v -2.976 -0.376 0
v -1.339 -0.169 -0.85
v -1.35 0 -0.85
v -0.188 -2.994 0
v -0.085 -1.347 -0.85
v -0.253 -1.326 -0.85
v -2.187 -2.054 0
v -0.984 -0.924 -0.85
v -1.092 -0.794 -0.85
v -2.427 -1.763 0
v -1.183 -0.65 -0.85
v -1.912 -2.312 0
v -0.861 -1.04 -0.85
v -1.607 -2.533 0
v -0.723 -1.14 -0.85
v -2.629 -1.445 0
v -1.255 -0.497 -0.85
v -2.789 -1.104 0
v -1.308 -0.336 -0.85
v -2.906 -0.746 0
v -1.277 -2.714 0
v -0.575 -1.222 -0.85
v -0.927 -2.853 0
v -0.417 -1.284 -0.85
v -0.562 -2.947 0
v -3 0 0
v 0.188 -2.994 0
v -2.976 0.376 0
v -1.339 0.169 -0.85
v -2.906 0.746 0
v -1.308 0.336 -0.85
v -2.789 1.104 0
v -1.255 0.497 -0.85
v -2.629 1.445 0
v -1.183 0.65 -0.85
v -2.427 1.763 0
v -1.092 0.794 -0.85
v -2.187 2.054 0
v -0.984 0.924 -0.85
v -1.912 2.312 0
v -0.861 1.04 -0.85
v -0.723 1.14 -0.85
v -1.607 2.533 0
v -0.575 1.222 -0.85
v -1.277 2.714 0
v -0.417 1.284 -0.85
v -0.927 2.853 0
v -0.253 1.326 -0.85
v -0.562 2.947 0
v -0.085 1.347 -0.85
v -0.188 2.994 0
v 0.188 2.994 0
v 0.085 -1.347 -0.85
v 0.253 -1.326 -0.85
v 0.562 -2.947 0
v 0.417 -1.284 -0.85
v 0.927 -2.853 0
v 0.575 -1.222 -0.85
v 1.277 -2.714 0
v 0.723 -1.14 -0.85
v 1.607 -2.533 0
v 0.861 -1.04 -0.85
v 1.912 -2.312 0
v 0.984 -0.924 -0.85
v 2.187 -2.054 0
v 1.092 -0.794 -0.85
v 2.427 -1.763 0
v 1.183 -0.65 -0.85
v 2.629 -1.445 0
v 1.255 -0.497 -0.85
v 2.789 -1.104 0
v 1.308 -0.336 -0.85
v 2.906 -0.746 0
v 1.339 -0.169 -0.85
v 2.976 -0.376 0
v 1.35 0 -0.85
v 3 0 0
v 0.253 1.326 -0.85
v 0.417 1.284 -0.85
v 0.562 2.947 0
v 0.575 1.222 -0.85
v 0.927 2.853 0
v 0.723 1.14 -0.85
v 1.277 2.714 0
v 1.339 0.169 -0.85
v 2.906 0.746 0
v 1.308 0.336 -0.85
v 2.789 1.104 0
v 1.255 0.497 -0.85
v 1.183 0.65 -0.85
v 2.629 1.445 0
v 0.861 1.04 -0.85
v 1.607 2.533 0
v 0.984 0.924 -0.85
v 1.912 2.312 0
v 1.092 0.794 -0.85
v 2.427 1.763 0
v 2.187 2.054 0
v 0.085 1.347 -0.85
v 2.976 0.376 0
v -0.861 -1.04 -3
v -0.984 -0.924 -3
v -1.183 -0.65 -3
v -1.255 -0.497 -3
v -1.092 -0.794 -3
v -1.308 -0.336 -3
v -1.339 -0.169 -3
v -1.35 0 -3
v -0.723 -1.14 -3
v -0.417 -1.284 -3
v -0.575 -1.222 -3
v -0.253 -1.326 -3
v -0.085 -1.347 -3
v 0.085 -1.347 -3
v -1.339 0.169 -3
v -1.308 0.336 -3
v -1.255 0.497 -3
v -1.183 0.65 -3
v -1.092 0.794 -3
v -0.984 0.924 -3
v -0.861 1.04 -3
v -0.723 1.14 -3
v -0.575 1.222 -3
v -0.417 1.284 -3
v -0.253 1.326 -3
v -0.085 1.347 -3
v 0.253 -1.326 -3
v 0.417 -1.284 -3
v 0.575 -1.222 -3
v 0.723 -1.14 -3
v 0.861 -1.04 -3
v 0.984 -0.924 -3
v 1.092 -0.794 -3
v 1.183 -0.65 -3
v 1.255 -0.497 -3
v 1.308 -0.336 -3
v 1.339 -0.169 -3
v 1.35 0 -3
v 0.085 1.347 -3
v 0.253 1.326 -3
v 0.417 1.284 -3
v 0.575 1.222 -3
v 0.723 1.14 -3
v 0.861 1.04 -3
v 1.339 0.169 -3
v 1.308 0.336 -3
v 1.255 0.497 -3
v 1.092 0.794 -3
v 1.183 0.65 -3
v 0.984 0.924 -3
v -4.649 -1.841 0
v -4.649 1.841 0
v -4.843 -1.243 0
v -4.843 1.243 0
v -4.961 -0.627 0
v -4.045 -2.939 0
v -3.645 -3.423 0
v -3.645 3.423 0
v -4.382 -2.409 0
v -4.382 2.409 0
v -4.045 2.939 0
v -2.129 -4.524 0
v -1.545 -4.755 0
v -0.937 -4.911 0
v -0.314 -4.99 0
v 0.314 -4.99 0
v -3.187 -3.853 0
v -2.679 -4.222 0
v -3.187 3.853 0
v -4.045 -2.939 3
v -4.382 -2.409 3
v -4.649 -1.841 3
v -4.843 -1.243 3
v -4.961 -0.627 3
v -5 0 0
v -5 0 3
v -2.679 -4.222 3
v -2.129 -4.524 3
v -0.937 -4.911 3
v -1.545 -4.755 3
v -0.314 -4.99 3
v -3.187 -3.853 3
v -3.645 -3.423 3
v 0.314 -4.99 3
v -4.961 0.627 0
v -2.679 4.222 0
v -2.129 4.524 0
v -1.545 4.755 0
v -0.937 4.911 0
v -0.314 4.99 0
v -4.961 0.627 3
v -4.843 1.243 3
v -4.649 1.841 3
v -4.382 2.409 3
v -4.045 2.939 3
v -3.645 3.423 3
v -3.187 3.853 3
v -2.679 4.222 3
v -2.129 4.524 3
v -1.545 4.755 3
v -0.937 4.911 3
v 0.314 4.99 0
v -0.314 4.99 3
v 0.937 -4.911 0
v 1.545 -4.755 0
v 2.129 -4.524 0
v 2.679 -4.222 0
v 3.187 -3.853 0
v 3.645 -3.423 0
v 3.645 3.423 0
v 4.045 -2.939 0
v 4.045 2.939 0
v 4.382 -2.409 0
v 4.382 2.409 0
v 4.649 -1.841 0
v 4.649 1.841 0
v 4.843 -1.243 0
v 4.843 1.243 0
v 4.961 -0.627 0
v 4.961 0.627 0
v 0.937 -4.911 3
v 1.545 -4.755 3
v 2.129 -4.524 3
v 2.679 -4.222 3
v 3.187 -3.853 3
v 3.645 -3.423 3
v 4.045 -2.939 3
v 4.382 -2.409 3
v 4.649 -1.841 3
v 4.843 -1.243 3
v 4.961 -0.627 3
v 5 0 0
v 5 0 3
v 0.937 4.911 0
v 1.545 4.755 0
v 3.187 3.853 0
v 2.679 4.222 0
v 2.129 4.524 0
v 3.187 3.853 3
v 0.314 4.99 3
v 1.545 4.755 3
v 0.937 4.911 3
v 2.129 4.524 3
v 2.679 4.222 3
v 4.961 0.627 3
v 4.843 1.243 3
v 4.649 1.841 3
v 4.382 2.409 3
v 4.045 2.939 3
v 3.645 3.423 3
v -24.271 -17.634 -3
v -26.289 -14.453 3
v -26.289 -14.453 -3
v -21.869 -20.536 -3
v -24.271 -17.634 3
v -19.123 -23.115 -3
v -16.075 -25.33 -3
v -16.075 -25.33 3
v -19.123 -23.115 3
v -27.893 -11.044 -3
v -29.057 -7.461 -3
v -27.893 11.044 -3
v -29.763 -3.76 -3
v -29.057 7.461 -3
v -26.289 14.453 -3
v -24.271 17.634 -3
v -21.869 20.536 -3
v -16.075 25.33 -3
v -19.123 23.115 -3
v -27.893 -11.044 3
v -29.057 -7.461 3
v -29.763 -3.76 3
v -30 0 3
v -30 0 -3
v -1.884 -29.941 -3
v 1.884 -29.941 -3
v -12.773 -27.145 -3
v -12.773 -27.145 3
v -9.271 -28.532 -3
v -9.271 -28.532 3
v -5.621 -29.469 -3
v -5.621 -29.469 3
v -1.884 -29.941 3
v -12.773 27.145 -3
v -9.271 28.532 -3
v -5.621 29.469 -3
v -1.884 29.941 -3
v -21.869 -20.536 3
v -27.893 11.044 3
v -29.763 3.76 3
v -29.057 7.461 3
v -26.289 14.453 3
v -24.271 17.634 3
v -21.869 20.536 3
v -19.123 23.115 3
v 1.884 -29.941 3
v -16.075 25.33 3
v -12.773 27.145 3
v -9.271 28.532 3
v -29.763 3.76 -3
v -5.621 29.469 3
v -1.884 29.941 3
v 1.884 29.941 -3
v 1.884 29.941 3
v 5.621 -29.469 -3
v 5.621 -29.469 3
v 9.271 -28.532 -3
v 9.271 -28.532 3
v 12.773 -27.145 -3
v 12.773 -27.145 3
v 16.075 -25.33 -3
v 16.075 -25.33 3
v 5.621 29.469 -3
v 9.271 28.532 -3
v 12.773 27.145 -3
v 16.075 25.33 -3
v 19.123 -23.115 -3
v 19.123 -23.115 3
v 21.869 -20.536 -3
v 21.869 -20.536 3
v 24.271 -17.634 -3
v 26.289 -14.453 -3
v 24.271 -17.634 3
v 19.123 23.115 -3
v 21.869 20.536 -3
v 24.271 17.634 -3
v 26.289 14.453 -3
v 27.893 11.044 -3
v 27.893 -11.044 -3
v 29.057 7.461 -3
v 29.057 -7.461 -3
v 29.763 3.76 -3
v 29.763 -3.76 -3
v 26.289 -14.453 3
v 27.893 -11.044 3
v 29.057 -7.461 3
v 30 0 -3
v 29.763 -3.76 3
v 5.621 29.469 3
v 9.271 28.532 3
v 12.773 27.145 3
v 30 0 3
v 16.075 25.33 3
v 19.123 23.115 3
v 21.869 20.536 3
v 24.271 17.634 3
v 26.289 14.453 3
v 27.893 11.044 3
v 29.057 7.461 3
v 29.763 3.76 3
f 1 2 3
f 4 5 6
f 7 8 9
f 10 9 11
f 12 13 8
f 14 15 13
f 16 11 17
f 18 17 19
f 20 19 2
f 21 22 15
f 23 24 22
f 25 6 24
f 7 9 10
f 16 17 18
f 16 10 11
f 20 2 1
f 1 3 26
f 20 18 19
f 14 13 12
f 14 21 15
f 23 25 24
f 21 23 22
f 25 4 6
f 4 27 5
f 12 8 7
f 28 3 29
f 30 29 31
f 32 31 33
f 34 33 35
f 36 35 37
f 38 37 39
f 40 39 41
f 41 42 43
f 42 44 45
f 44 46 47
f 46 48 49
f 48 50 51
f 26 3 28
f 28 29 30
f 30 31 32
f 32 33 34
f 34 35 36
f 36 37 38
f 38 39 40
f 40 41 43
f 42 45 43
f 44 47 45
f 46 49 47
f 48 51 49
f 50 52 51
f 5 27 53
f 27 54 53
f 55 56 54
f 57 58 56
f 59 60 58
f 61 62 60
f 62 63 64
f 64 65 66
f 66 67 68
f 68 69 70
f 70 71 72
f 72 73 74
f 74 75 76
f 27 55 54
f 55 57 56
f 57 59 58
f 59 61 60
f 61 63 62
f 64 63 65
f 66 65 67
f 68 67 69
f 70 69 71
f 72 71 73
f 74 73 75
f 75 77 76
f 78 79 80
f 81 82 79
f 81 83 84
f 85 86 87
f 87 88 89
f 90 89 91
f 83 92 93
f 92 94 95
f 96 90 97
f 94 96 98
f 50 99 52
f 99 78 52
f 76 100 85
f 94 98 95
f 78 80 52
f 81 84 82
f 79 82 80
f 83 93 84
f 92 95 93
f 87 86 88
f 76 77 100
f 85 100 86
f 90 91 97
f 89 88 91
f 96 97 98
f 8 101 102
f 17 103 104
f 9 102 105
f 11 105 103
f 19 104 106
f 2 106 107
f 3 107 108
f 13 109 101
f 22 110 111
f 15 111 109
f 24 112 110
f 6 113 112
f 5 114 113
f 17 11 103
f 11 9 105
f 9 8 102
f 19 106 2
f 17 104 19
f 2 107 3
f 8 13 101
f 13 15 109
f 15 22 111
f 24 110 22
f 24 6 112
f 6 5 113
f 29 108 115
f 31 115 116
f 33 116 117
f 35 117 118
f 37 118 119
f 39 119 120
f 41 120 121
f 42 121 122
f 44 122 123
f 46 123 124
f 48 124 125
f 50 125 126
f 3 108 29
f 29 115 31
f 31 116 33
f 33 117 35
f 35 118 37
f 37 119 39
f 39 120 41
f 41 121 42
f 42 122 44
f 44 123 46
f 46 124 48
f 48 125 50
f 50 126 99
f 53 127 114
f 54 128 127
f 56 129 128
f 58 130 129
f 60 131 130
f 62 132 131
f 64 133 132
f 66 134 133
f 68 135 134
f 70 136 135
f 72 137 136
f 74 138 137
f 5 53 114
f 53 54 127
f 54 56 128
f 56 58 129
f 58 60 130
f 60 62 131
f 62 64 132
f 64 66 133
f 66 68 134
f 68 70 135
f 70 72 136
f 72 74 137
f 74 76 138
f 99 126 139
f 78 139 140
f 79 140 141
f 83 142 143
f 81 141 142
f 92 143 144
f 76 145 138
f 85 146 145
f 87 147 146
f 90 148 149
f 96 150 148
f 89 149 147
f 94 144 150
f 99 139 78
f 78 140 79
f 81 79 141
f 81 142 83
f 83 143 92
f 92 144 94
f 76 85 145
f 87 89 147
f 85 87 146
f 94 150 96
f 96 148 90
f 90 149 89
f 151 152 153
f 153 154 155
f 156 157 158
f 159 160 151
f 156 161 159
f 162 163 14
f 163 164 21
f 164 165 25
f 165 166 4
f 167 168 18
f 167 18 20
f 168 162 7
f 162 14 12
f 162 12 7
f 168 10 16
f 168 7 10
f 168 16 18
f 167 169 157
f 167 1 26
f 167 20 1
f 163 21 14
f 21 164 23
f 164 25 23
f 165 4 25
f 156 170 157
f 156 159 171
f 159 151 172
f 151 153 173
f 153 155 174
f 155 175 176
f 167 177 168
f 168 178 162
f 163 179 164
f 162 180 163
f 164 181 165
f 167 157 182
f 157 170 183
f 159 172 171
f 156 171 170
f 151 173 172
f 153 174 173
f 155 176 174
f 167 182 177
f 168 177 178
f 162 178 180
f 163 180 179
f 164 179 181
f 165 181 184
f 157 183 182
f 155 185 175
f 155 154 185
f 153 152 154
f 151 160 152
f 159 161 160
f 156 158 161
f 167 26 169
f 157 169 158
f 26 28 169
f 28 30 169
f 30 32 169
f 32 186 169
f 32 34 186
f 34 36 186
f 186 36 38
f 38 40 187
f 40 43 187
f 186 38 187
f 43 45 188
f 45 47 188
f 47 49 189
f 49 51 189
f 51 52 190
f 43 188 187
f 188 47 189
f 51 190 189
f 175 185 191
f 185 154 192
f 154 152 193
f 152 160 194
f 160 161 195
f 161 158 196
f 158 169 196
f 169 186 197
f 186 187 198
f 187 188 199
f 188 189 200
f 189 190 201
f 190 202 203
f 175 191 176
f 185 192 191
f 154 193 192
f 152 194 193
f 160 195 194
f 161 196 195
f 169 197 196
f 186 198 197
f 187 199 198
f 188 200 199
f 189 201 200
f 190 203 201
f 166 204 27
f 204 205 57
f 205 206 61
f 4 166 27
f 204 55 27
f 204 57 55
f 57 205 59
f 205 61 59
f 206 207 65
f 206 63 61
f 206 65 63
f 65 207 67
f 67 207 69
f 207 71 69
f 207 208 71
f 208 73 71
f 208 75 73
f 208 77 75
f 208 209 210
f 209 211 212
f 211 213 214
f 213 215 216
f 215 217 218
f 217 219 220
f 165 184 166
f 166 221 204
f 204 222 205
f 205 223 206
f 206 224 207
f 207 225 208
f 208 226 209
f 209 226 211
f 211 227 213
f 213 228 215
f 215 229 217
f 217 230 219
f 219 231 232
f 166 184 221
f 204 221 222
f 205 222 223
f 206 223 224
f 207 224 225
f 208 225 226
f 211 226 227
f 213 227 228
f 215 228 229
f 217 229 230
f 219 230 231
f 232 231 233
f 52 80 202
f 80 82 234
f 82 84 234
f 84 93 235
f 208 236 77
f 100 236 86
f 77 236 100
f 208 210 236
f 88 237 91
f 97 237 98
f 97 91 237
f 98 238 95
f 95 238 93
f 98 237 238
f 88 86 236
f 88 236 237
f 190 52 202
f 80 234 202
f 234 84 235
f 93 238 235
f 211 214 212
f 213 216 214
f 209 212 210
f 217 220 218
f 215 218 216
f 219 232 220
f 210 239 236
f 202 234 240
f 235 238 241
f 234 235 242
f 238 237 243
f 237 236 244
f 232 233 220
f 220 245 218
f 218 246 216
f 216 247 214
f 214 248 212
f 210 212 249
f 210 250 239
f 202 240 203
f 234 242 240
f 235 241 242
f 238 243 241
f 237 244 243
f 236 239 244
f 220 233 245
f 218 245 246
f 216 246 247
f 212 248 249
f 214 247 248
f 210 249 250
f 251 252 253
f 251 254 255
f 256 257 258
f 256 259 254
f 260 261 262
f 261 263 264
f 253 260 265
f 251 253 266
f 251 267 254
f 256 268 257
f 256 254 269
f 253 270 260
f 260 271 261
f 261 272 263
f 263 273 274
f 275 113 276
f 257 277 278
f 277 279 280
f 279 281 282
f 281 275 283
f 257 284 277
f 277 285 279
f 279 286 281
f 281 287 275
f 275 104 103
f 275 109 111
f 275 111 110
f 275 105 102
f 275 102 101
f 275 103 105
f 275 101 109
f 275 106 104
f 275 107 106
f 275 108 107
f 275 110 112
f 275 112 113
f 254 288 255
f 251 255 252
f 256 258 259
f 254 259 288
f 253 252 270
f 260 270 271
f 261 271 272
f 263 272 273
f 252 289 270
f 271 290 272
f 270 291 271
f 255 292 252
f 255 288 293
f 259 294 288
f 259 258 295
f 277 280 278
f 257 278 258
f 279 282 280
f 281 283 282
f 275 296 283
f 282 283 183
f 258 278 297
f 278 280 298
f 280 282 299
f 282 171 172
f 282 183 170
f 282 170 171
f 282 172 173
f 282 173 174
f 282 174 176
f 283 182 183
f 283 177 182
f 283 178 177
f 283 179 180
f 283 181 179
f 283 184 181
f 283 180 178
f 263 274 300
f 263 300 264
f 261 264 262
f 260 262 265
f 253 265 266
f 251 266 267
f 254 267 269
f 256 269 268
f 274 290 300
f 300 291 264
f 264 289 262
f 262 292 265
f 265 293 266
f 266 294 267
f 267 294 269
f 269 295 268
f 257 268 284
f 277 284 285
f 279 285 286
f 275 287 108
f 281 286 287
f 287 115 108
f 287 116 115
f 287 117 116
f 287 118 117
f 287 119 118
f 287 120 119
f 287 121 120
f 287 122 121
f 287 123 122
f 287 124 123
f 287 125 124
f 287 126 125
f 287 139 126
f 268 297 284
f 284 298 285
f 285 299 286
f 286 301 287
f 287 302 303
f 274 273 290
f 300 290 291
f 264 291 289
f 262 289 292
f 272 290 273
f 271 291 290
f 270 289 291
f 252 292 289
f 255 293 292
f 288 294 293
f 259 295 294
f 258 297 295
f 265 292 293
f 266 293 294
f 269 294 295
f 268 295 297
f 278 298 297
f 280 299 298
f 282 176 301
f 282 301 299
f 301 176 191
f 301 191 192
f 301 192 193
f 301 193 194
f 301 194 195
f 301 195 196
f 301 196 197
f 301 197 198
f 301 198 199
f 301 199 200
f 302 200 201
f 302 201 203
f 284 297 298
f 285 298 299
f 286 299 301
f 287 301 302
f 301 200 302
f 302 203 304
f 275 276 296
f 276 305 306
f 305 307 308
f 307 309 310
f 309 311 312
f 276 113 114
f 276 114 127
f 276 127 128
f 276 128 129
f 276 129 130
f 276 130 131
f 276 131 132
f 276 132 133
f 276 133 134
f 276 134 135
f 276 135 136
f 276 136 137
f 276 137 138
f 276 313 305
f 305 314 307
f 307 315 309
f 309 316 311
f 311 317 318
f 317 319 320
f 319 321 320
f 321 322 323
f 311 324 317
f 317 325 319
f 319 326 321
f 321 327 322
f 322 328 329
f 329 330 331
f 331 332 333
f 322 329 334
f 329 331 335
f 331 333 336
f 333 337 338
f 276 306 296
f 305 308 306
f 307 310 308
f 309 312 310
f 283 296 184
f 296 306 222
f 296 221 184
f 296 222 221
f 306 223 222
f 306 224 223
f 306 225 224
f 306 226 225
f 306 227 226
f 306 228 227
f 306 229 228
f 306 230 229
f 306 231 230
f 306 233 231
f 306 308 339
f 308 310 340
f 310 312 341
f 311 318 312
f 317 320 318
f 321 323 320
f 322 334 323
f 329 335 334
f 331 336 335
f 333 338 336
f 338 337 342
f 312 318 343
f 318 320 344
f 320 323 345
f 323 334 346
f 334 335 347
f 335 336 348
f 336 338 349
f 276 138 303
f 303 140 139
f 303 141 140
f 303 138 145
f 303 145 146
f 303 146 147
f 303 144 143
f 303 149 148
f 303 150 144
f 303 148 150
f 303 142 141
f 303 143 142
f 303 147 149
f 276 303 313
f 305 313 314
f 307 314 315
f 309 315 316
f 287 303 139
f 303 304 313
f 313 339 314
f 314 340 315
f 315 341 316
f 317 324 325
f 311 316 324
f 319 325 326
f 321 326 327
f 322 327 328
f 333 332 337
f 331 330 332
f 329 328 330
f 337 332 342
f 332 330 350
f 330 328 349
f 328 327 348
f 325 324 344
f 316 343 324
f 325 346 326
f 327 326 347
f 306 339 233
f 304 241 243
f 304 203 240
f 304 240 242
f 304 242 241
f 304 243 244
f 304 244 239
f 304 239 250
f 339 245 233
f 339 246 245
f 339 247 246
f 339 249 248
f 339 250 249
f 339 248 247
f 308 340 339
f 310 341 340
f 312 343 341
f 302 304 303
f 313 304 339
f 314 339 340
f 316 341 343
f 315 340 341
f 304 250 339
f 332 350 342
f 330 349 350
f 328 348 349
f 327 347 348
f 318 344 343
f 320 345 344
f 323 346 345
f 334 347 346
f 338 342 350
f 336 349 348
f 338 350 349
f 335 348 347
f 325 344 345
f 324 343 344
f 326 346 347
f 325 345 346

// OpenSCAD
$fn = 50;

difference() {
	union() {
		translate(v = [0, 0, -3.0]) {
			cylinder(h = 6, r = 30.0);
		}
	}
	union() {
		translate(v = [0, 0, 0]) {
			rotate(a = [0, 0, 0]) {
				difference() {
					union() {
						translate(v = [0, 0, -6.0]) {
							cylinder(h = 6, r = 1.0);
						}
						translate(v = [0, 0, -0.85]) {
							cylinder(h = 0.85, r1 = 1.35, r2 = 3.0);
						}
						translate(v = [0, 0, -6.0]) {
							cylinder(h = 6, r = 1.35);
						}
						translate(v = [0, 0, -6.0]) {
							cylinder(h = 6, r = 1.0);
						}
					}
					union();
				}
			}
		}
		#cylinder(h = 3, r = 5.0);
	}
}
